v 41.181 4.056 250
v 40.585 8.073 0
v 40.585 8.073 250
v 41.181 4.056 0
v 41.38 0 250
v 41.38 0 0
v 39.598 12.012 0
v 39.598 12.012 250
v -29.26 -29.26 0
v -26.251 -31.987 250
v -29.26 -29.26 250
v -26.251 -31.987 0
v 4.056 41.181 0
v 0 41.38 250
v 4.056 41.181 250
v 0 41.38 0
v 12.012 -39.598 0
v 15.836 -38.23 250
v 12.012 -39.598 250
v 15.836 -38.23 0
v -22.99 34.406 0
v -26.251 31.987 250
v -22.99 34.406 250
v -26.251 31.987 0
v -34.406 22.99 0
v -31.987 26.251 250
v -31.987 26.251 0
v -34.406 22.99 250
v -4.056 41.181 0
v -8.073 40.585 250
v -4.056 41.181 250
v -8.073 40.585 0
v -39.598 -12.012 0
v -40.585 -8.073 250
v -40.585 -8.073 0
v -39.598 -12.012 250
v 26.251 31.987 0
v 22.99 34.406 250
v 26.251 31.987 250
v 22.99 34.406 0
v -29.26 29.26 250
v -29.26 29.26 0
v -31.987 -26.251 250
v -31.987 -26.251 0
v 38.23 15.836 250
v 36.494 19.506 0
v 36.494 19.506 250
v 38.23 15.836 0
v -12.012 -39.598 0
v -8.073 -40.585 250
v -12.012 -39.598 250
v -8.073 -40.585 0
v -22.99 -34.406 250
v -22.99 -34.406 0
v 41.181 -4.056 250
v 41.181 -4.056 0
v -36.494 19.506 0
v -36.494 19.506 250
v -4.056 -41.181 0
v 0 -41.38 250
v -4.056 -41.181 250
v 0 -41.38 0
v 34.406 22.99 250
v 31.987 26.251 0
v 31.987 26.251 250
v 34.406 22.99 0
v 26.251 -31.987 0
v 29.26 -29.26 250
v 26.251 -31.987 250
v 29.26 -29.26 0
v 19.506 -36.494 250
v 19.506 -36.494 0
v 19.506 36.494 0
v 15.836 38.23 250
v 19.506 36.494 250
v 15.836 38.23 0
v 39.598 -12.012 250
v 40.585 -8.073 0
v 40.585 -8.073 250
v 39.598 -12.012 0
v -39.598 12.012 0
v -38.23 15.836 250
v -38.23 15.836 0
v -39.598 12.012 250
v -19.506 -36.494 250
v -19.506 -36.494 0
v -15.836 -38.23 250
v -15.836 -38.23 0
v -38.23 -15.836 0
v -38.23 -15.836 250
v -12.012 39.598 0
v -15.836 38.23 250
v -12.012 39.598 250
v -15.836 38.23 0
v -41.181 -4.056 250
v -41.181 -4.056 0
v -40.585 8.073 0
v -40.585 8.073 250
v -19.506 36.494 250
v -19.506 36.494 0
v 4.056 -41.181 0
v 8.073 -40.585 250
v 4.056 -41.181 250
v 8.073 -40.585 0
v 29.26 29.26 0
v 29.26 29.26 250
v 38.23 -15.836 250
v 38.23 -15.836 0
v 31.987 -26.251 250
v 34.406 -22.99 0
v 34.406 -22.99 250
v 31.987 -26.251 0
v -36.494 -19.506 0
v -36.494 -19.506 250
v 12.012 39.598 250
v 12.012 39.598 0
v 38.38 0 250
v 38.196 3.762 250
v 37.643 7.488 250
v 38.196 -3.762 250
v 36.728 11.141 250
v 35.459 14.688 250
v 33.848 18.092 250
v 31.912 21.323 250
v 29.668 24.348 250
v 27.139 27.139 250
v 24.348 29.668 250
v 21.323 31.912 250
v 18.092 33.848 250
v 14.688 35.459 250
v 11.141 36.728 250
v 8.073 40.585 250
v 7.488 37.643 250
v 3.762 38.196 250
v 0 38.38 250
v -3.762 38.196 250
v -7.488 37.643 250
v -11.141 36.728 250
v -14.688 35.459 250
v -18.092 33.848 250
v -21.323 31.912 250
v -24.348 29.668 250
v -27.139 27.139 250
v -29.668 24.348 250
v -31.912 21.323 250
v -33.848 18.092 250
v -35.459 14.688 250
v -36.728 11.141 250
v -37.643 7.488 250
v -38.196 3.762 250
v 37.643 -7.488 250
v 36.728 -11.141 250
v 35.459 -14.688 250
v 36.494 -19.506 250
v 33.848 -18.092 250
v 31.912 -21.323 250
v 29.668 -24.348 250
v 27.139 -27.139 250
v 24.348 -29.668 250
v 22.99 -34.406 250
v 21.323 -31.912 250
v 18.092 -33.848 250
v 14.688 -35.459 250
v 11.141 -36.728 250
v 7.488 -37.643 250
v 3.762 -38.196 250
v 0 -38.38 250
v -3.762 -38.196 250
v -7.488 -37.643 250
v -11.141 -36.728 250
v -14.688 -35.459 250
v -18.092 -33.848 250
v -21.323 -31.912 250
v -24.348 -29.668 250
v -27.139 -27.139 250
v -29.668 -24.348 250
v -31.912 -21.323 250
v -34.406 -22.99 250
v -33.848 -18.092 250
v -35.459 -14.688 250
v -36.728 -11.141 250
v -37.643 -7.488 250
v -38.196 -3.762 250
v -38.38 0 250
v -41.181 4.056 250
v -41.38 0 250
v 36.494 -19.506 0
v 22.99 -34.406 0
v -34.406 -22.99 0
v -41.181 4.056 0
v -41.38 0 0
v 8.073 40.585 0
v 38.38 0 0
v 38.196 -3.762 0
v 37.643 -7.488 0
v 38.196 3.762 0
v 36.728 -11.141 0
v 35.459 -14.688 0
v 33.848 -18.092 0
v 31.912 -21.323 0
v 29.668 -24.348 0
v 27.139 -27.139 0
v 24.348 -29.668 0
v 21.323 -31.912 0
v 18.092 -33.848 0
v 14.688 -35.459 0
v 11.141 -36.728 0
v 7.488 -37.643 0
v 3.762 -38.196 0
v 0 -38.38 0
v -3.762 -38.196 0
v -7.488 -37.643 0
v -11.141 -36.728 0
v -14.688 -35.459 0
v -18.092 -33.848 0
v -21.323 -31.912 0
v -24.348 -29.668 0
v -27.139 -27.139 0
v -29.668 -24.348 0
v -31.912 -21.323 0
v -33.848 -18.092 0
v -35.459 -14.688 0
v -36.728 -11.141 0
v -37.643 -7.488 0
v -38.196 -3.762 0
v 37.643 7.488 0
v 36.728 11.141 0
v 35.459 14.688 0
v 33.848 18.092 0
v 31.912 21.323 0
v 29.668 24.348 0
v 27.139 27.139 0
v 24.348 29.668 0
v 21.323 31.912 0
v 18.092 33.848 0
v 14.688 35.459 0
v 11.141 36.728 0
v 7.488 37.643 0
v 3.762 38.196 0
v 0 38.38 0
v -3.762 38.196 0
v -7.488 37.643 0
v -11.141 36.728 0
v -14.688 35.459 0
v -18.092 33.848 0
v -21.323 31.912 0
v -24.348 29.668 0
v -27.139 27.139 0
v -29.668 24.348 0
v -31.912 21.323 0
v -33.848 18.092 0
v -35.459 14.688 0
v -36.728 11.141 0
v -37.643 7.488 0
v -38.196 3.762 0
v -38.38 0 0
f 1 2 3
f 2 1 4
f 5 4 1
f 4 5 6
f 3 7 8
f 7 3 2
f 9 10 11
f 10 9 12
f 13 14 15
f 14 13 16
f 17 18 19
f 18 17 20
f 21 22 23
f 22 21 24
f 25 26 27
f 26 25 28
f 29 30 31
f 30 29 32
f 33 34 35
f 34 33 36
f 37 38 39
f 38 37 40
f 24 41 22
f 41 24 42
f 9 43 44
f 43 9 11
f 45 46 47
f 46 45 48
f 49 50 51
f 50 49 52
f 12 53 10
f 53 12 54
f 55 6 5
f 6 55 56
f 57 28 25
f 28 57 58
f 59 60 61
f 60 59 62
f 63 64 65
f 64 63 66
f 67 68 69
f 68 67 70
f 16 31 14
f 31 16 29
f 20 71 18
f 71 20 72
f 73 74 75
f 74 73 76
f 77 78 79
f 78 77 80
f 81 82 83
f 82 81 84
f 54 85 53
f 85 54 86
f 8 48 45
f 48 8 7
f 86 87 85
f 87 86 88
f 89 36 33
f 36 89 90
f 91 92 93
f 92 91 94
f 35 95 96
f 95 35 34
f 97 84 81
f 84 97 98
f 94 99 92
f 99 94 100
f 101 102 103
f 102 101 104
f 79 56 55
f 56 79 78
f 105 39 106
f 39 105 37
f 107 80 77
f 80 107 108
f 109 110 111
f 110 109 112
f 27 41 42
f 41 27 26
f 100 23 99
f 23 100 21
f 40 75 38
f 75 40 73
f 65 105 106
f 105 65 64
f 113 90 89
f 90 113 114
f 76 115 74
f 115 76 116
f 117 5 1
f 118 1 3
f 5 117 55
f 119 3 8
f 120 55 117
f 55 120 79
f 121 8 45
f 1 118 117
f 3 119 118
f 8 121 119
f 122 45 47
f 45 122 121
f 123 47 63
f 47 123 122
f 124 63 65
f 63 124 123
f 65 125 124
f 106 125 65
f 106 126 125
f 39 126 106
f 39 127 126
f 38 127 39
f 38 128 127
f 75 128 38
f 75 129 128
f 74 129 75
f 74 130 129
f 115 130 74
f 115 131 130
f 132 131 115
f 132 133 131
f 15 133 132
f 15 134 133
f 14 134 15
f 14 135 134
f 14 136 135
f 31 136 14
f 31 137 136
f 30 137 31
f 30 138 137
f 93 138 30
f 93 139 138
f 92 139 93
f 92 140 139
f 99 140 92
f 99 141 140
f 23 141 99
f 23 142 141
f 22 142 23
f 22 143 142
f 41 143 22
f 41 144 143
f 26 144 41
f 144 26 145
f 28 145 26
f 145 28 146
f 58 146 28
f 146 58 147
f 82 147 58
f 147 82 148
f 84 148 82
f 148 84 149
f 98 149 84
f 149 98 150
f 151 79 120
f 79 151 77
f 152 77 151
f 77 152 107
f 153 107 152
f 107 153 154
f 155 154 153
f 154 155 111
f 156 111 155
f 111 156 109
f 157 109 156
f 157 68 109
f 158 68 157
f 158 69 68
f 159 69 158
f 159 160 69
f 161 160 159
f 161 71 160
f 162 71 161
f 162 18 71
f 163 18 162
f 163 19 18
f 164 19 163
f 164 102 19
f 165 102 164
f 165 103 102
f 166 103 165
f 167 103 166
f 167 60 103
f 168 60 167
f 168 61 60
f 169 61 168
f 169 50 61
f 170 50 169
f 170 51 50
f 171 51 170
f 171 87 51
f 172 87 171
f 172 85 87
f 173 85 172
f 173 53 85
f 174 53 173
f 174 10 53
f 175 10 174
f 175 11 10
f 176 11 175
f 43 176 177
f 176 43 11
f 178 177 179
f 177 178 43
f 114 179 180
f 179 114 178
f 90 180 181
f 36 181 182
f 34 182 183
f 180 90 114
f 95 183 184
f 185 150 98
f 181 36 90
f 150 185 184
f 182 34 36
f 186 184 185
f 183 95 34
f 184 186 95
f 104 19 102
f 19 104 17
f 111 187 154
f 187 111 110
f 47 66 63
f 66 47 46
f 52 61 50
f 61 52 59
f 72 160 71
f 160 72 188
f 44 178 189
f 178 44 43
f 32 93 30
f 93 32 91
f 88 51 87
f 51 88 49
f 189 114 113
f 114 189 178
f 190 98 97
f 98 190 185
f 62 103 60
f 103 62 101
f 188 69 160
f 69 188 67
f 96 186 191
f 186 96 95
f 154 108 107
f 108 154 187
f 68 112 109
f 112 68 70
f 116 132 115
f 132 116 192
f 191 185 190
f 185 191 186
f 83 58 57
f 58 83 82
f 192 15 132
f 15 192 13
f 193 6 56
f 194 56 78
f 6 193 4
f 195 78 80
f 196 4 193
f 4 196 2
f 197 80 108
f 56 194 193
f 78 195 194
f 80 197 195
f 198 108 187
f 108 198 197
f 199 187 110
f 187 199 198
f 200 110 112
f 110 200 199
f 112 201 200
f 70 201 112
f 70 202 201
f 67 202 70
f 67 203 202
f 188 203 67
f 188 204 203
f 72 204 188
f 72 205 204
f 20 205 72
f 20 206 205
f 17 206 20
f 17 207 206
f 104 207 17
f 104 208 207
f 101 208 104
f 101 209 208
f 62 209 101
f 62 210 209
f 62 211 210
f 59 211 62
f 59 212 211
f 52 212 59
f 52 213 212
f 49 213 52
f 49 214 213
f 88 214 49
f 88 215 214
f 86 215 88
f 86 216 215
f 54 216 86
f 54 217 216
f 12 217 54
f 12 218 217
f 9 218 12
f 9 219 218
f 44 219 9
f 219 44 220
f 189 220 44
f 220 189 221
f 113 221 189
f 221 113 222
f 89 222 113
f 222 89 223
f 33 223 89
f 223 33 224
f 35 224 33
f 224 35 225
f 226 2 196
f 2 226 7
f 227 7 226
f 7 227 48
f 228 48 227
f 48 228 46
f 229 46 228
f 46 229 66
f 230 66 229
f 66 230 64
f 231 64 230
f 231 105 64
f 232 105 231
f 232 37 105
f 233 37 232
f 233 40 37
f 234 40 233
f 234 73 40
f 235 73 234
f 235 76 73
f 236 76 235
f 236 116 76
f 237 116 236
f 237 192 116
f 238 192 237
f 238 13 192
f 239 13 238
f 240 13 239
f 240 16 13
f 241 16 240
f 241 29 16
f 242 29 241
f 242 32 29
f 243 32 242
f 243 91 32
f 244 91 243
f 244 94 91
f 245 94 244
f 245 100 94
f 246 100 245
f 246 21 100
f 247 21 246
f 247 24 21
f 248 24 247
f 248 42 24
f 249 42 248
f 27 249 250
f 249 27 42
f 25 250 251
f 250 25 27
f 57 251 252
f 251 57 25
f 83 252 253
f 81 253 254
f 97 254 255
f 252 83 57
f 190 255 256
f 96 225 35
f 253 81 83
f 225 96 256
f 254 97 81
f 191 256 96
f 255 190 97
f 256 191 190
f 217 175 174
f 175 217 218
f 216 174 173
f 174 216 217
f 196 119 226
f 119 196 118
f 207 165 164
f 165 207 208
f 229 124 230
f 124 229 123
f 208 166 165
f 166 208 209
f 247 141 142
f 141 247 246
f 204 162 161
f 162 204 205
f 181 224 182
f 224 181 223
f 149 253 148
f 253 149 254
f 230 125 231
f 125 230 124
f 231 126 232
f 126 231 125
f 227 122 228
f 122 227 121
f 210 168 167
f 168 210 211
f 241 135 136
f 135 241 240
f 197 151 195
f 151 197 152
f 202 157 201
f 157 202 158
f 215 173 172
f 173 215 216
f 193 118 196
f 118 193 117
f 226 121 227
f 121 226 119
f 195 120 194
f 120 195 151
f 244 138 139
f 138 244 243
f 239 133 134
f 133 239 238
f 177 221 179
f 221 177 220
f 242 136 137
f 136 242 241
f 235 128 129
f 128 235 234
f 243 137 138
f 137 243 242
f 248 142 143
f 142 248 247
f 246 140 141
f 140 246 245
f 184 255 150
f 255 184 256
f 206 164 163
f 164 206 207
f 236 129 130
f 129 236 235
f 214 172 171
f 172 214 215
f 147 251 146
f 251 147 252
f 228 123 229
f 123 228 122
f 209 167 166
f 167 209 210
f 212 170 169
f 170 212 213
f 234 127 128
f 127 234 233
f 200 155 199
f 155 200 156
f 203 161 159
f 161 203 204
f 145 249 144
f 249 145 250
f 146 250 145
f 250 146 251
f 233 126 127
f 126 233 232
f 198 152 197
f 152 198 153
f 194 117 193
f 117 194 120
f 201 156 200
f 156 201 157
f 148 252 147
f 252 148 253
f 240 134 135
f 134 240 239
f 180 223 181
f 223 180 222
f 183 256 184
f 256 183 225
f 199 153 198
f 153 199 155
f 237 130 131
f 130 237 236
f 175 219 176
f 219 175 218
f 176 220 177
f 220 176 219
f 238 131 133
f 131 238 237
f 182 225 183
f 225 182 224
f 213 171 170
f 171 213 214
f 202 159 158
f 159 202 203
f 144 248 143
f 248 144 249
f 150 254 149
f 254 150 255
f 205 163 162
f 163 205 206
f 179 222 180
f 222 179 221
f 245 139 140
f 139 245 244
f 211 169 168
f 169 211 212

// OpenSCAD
h=250;
c=260;
t=3;

r=c/(2*PI);
$fn=64;

difference() {
  cylinder(r=r,h=h);
  translate([0,0,-1]) cylinder(r=r-t,h=h+2);
}
